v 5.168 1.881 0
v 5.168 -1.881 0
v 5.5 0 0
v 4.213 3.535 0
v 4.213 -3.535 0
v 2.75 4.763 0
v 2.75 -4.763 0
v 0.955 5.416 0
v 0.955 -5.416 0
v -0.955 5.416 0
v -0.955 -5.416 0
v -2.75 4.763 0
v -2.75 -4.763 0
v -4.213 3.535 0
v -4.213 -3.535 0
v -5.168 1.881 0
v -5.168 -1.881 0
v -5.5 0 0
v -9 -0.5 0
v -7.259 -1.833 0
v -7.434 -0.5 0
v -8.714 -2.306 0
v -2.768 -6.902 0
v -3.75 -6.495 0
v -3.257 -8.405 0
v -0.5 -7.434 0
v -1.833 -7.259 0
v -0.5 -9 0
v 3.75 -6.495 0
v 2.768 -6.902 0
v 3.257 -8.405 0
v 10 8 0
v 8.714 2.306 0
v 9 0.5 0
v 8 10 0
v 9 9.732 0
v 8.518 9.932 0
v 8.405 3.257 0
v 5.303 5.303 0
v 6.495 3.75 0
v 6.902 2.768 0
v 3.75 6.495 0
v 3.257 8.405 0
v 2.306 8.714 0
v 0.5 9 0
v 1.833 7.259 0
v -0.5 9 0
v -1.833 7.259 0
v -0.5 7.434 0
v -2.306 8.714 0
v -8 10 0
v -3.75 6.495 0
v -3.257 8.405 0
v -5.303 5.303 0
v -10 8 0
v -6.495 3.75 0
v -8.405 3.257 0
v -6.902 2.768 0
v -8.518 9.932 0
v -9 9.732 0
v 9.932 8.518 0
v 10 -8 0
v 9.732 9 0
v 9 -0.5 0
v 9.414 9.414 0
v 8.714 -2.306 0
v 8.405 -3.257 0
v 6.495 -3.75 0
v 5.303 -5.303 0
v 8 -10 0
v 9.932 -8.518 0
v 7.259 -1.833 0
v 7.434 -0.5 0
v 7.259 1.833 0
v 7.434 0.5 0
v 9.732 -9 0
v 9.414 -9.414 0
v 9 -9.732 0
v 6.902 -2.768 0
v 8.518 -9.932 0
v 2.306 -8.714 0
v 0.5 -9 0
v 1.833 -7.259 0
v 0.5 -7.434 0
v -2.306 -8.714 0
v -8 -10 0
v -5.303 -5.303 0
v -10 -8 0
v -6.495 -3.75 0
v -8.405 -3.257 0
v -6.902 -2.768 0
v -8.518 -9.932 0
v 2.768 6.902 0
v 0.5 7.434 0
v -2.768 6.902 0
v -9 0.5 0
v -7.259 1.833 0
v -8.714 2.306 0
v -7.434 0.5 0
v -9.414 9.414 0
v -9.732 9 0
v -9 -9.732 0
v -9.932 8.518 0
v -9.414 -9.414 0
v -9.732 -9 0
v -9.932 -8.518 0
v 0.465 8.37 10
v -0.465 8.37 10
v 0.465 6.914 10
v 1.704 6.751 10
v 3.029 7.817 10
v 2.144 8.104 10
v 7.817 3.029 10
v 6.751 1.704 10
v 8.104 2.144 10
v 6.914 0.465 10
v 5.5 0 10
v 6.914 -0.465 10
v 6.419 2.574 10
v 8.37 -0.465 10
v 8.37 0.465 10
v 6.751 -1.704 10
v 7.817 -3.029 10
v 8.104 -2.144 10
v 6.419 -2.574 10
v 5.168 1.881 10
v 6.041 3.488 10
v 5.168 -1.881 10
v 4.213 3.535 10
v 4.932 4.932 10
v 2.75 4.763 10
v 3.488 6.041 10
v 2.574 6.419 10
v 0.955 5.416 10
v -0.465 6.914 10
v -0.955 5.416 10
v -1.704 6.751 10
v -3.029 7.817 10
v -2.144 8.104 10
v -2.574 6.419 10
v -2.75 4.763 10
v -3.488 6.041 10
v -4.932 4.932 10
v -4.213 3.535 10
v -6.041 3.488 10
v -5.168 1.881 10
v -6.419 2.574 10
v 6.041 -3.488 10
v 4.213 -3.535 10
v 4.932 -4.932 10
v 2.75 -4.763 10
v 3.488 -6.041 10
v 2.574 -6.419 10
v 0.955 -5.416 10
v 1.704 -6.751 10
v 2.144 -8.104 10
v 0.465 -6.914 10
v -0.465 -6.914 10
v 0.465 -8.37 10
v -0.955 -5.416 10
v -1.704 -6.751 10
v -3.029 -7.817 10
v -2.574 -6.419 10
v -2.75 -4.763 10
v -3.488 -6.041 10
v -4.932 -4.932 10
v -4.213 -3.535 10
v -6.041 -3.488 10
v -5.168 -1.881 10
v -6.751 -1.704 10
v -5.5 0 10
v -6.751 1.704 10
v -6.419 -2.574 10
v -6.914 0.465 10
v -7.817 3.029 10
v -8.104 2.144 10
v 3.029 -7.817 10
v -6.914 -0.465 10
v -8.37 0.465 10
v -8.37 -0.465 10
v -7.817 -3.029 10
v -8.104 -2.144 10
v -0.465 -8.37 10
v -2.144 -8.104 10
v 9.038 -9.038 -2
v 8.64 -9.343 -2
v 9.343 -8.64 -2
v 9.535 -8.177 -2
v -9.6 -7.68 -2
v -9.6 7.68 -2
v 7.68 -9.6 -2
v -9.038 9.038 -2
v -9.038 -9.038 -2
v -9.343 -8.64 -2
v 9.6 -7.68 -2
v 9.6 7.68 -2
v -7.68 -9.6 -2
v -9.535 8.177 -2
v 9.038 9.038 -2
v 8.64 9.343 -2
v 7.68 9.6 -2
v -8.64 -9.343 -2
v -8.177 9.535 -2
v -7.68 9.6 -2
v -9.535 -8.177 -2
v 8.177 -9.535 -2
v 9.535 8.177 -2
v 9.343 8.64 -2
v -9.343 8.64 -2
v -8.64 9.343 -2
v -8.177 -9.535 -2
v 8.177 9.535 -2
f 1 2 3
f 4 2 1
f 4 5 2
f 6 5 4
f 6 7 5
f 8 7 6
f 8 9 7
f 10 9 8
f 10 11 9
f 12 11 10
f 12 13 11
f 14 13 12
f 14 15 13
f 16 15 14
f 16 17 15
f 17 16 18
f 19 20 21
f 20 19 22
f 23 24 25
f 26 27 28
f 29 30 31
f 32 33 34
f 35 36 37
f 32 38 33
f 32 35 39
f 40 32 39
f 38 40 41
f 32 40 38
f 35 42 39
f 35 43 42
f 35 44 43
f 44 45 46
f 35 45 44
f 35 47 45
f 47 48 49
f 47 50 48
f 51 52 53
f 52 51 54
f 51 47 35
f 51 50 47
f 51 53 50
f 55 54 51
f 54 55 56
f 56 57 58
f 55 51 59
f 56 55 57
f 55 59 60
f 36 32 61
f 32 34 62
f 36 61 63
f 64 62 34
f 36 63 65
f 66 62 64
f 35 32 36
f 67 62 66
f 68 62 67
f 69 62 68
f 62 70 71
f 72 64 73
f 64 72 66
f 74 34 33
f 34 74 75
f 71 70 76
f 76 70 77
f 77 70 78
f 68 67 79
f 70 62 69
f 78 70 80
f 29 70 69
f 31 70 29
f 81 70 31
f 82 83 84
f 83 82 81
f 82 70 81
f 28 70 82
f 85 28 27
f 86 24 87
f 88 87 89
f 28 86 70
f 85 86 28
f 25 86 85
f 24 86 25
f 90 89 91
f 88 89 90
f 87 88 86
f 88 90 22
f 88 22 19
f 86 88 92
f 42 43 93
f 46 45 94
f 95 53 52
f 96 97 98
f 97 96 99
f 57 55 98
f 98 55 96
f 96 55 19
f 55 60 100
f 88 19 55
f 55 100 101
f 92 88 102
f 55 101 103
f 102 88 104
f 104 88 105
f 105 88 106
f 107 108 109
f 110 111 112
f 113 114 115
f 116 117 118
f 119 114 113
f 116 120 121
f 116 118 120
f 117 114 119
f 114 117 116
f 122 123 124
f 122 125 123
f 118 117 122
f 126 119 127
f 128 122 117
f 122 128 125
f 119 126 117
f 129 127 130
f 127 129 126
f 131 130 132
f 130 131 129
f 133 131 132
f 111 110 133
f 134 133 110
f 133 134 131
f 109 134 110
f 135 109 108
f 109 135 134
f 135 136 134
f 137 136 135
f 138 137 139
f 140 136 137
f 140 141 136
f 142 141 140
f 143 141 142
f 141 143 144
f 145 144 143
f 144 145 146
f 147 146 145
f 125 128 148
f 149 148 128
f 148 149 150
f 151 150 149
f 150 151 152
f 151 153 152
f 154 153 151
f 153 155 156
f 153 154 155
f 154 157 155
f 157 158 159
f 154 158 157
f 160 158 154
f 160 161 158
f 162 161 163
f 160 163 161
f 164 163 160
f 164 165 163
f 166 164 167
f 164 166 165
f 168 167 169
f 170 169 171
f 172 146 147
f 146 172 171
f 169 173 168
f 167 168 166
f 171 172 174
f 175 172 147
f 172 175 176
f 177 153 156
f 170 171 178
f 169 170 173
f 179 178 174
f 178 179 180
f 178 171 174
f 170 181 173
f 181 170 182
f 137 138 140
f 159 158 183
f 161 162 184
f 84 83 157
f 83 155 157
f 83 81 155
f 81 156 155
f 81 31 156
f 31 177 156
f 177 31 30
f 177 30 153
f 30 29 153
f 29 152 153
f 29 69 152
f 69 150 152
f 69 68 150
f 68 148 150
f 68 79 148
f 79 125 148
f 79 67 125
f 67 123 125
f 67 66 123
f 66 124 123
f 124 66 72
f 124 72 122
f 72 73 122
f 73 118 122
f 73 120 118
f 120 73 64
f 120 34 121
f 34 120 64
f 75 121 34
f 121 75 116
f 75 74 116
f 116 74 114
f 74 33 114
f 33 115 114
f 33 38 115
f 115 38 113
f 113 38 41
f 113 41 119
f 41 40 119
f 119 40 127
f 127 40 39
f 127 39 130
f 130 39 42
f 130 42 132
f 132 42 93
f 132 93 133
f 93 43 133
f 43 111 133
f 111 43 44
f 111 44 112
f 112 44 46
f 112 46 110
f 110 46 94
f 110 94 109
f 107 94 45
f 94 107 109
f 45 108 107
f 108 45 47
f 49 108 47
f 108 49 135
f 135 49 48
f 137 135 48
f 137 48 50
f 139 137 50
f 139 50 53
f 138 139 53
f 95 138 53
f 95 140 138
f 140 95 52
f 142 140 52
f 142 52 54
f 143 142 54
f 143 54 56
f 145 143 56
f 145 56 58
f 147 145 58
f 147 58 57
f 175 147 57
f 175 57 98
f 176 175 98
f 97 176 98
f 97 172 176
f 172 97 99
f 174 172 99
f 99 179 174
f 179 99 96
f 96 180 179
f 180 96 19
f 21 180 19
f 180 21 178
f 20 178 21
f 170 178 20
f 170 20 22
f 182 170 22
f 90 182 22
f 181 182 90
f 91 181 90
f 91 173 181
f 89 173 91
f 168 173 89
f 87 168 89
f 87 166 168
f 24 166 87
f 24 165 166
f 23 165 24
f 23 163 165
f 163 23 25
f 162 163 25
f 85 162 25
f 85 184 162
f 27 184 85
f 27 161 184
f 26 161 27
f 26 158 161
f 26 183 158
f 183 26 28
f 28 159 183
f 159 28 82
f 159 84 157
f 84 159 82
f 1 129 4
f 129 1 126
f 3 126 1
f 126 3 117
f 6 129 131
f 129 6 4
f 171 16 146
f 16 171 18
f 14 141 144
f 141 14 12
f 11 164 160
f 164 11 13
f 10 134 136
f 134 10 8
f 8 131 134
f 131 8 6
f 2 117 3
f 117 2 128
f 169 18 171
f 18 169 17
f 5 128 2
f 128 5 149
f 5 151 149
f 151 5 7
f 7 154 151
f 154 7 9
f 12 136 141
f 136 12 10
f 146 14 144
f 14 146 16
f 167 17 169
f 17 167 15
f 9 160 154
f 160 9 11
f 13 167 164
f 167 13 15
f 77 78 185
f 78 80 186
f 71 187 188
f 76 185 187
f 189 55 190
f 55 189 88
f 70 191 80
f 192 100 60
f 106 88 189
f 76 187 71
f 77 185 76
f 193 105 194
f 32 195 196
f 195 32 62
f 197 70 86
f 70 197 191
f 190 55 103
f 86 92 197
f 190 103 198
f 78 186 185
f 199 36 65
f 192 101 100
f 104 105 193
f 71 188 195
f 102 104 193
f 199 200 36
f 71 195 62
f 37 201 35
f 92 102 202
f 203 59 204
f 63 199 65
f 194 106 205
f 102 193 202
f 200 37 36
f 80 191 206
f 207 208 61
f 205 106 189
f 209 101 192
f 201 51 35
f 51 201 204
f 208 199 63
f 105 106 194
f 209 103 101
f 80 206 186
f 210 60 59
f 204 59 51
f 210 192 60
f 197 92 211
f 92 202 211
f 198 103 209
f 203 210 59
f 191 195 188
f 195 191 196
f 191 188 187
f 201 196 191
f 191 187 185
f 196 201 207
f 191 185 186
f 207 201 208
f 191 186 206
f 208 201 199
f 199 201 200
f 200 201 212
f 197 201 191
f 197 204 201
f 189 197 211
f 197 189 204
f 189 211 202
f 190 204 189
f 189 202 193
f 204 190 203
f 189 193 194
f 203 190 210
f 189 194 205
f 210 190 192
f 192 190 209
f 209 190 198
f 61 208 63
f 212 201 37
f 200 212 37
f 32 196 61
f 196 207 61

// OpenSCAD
// Endcap for 20mm square steel tubing
// Designed for Leon CNC by Peter Hertel 2021
// CC-BY 4.0 license

// Variables

od = 20; // [20] outer diameter of square tubing
id = 18; // [18] inner diameter of square tubing, adjust this if fit is too tight
offset = 2; // [2] amount of rounded corners
tab_size = 3; // [3] depth/length of tabs 
tab_width = 1; // [1] width of tabs

// The end cap itself
    mirror([0,0,1]) // mirrored to get the chamfer on the bottom/outside
    linear_extrude(height=2,scale=0.96) // extrusion of the 2D shape defined below, scaled to chamfer the edge
    offset(offset,$fn=24) // restores the basic shape to its original od size, rounding the corners in the process
    offset(-offset) // makes the basic shape smaller
        square(od,center=true); // basic 2D shape of end cap, modified above

// Internal shape
// Made spiky with tabs to conform to inside burr after cutting
// Might need slight convincing with a mallet to fit snugly

difference(){ // making the center hollow
    linear_extrude(height=10,scale=0.93){ // makes the 3D shape with a slight scale/chamfer along the edge for easier insertion
        circle(r=id/2-tab_size/2); // basic shape of center cylinder
        for(Y=[90:90:360]) // makes four of the shapes below
            for(X=[-1:1]) // makes three of the shapes below
                rotate([0,0,360/20*X+Y]) // rotates the tabs around the center
                translate([0,-tab_width/2]) // moves the tab to center
                    square([id/2,tab_width]); // basic shape of tab
}
cylinder(r=id/2-3.5,h=20); // basic shape of center hole
}
